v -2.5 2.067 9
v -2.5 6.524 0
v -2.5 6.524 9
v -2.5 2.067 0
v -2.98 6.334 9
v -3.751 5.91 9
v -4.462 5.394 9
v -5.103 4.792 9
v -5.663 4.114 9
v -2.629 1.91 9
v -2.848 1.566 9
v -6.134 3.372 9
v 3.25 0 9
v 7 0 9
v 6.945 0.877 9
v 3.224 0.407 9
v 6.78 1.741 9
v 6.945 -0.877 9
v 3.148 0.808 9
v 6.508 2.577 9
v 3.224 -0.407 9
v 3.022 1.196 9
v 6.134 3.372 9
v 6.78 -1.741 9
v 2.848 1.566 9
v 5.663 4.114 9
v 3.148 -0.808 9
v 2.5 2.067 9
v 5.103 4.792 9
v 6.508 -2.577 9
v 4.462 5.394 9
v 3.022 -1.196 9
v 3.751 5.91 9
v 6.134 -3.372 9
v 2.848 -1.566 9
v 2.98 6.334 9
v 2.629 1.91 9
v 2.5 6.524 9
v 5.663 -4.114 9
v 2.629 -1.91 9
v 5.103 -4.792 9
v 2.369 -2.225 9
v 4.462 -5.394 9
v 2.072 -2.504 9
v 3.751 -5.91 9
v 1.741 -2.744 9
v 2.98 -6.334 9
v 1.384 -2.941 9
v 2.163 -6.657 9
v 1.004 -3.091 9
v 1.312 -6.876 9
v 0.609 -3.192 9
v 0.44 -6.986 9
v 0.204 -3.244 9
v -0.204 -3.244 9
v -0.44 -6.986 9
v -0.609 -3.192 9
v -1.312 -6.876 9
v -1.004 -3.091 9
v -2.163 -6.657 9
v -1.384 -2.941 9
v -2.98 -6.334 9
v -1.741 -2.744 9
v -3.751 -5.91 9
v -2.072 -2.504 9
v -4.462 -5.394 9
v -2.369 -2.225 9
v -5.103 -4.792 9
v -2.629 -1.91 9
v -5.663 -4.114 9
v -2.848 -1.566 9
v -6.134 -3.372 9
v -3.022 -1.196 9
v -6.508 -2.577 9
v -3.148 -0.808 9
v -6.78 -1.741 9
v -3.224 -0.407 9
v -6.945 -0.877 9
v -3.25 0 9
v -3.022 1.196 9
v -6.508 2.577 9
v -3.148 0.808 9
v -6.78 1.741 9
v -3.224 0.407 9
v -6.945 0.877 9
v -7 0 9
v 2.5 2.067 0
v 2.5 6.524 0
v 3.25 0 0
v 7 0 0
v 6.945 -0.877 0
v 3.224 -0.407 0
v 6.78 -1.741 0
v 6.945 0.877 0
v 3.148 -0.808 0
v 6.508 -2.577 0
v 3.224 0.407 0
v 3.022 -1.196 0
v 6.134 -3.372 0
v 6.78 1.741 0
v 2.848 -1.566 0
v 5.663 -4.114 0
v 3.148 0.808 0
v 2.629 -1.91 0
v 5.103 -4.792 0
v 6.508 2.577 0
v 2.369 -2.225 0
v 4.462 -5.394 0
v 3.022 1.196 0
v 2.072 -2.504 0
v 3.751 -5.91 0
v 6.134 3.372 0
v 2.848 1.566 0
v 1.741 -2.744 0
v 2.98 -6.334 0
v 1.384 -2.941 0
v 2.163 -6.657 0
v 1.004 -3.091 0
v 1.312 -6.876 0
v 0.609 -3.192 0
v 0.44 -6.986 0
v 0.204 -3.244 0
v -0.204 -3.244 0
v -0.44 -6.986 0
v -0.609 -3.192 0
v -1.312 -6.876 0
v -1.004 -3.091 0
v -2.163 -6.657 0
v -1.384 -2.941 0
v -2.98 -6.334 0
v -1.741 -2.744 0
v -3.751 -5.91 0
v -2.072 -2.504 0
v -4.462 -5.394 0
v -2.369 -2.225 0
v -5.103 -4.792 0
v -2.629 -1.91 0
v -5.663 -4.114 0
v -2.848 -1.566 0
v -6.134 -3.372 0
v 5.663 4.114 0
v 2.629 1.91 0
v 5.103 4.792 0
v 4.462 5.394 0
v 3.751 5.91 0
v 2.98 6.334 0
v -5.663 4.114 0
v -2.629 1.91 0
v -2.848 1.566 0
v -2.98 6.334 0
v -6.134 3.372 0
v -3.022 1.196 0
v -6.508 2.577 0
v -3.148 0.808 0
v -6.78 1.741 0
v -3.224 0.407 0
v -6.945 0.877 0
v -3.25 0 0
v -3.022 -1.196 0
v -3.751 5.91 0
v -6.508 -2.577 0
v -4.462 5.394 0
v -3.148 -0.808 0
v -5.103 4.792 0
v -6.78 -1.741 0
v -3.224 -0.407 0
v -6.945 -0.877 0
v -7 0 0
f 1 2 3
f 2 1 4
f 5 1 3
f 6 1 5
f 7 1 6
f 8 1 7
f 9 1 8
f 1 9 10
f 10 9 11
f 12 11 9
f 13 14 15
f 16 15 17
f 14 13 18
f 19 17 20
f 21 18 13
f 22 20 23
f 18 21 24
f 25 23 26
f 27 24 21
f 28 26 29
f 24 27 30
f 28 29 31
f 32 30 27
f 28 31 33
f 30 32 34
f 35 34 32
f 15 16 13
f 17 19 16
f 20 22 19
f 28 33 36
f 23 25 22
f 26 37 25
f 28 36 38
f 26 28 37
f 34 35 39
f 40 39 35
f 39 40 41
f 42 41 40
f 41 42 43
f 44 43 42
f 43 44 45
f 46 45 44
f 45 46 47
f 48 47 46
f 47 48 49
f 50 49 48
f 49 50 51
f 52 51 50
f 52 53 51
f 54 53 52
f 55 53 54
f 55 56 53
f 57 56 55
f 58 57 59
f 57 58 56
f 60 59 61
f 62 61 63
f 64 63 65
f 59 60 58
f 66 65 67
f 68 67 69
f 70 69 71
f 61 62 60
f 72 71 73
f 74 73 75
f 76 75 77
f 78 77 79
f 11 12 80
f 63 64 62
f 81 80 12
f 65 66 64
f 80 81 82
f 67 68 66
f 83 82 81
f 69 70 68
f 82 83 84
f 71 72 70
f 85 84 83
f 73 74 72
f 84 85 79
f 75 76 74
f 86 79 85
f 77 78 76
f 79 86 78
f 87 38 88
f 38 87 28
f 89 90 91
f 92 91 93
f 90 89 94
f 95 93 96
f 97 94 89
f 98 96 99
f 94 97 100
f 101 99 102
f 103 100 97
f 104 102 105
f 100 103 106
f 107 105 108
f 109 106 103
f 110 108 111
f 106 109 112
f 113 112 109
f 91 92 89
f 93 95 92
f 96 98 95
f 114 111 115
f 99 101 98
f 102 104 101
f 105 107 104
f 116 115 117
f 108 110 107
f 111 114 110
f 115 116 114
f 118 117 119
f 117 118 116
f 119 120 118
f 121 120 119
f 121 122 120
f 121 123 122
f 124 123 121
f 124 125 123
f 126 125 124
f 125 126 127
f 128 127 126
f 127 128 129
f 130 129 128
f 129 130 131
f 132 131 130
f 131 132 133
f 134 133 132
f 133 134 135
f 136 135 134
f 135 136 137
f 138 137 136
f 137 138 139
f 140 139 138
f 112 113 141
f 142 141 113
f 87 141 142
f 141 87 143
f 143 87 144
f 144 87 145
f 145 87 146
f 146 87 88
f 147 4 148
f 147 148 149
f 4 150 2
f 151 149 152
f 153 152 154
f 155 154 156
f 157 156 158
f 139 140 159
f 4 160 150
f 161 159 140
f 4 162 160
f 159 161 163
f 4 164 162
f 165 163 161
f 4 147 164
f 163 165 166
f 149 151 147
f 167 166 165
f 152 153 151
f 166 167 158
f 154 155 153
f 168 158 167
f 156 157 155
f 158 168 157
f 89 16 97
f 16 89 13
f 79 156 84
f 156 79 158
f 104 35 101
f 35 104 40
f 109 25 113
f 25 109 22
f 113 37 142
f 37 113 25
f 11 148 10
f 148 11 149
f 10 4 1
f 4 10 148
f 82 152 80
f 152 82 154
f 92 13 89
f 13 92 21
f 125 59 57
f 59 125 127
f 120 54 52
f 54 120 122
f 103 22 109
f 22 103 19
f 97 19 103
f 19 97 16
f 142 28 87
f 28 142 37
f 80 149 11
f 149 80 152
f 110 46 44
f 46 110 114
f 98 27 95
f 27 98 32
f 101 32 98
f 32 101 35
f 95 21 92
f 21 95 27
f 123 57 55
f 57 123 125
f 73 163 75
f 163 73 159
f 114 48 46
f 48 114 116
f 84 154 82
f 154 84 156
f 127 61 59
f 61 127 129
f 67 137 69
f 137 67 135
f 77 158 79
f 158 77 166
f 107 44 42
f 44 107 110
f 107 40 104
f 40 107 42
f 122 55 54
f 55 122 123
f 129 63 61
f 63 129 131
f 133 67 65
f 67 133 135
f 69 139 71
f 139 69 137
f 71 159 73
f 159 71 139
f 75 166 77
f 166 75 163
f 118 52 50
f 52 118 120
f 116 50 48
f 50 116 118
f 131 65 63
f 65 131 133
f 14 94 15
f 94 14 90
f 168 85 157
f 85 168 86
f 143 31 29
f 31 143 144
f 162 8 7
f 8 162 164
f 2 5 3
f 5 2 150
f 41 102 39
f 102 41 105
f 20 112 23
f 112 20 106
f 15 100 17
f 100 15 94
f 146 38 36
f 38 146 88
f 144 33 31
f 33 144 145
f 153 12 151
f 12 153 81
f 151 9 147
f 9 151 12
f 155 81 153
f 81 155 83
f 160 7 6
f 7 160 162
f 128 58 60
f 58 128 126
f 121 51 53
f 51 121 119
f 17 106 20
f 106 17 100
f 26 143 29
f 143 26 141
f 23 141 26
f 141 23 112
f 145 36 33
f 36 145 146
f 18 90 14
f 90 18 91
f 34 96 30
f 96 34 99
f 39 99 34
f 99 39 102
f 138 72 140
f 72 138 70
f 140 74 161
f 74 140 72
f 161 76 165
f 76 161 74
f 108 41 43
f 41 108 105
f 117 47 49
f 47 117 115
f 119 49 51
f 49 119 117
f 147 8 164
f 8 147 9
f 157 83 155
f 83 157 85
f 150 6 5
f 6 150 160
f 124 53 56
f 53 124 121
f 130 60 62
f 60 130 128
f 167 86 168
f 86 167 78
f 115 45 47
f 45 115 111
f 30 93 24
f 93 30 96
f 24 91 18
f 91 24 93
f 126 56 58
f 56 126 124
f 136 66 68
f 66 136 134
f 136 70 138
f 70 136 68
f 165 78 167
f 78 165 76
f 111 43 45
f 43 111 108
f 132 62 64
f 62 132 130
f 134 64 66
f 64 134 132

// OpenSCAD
$fn = 50;


difference() {
	union() {
		cylinder(h = 9, r = 7.0000000000);
	}
	union() {
		#translate(v = [-2.5000000000, 0.0000000000, 0]) {
			cube(size = [5, 20, 9]);
		}
		translate(v = [0, 0, -100]) {
			cylinder(h = 200, r = 3.2500000000);
		}
		translate(v = [0, 0, -100]) {
			cylinder(h = 200, r = 1.8000000000);
		}
	}
}
